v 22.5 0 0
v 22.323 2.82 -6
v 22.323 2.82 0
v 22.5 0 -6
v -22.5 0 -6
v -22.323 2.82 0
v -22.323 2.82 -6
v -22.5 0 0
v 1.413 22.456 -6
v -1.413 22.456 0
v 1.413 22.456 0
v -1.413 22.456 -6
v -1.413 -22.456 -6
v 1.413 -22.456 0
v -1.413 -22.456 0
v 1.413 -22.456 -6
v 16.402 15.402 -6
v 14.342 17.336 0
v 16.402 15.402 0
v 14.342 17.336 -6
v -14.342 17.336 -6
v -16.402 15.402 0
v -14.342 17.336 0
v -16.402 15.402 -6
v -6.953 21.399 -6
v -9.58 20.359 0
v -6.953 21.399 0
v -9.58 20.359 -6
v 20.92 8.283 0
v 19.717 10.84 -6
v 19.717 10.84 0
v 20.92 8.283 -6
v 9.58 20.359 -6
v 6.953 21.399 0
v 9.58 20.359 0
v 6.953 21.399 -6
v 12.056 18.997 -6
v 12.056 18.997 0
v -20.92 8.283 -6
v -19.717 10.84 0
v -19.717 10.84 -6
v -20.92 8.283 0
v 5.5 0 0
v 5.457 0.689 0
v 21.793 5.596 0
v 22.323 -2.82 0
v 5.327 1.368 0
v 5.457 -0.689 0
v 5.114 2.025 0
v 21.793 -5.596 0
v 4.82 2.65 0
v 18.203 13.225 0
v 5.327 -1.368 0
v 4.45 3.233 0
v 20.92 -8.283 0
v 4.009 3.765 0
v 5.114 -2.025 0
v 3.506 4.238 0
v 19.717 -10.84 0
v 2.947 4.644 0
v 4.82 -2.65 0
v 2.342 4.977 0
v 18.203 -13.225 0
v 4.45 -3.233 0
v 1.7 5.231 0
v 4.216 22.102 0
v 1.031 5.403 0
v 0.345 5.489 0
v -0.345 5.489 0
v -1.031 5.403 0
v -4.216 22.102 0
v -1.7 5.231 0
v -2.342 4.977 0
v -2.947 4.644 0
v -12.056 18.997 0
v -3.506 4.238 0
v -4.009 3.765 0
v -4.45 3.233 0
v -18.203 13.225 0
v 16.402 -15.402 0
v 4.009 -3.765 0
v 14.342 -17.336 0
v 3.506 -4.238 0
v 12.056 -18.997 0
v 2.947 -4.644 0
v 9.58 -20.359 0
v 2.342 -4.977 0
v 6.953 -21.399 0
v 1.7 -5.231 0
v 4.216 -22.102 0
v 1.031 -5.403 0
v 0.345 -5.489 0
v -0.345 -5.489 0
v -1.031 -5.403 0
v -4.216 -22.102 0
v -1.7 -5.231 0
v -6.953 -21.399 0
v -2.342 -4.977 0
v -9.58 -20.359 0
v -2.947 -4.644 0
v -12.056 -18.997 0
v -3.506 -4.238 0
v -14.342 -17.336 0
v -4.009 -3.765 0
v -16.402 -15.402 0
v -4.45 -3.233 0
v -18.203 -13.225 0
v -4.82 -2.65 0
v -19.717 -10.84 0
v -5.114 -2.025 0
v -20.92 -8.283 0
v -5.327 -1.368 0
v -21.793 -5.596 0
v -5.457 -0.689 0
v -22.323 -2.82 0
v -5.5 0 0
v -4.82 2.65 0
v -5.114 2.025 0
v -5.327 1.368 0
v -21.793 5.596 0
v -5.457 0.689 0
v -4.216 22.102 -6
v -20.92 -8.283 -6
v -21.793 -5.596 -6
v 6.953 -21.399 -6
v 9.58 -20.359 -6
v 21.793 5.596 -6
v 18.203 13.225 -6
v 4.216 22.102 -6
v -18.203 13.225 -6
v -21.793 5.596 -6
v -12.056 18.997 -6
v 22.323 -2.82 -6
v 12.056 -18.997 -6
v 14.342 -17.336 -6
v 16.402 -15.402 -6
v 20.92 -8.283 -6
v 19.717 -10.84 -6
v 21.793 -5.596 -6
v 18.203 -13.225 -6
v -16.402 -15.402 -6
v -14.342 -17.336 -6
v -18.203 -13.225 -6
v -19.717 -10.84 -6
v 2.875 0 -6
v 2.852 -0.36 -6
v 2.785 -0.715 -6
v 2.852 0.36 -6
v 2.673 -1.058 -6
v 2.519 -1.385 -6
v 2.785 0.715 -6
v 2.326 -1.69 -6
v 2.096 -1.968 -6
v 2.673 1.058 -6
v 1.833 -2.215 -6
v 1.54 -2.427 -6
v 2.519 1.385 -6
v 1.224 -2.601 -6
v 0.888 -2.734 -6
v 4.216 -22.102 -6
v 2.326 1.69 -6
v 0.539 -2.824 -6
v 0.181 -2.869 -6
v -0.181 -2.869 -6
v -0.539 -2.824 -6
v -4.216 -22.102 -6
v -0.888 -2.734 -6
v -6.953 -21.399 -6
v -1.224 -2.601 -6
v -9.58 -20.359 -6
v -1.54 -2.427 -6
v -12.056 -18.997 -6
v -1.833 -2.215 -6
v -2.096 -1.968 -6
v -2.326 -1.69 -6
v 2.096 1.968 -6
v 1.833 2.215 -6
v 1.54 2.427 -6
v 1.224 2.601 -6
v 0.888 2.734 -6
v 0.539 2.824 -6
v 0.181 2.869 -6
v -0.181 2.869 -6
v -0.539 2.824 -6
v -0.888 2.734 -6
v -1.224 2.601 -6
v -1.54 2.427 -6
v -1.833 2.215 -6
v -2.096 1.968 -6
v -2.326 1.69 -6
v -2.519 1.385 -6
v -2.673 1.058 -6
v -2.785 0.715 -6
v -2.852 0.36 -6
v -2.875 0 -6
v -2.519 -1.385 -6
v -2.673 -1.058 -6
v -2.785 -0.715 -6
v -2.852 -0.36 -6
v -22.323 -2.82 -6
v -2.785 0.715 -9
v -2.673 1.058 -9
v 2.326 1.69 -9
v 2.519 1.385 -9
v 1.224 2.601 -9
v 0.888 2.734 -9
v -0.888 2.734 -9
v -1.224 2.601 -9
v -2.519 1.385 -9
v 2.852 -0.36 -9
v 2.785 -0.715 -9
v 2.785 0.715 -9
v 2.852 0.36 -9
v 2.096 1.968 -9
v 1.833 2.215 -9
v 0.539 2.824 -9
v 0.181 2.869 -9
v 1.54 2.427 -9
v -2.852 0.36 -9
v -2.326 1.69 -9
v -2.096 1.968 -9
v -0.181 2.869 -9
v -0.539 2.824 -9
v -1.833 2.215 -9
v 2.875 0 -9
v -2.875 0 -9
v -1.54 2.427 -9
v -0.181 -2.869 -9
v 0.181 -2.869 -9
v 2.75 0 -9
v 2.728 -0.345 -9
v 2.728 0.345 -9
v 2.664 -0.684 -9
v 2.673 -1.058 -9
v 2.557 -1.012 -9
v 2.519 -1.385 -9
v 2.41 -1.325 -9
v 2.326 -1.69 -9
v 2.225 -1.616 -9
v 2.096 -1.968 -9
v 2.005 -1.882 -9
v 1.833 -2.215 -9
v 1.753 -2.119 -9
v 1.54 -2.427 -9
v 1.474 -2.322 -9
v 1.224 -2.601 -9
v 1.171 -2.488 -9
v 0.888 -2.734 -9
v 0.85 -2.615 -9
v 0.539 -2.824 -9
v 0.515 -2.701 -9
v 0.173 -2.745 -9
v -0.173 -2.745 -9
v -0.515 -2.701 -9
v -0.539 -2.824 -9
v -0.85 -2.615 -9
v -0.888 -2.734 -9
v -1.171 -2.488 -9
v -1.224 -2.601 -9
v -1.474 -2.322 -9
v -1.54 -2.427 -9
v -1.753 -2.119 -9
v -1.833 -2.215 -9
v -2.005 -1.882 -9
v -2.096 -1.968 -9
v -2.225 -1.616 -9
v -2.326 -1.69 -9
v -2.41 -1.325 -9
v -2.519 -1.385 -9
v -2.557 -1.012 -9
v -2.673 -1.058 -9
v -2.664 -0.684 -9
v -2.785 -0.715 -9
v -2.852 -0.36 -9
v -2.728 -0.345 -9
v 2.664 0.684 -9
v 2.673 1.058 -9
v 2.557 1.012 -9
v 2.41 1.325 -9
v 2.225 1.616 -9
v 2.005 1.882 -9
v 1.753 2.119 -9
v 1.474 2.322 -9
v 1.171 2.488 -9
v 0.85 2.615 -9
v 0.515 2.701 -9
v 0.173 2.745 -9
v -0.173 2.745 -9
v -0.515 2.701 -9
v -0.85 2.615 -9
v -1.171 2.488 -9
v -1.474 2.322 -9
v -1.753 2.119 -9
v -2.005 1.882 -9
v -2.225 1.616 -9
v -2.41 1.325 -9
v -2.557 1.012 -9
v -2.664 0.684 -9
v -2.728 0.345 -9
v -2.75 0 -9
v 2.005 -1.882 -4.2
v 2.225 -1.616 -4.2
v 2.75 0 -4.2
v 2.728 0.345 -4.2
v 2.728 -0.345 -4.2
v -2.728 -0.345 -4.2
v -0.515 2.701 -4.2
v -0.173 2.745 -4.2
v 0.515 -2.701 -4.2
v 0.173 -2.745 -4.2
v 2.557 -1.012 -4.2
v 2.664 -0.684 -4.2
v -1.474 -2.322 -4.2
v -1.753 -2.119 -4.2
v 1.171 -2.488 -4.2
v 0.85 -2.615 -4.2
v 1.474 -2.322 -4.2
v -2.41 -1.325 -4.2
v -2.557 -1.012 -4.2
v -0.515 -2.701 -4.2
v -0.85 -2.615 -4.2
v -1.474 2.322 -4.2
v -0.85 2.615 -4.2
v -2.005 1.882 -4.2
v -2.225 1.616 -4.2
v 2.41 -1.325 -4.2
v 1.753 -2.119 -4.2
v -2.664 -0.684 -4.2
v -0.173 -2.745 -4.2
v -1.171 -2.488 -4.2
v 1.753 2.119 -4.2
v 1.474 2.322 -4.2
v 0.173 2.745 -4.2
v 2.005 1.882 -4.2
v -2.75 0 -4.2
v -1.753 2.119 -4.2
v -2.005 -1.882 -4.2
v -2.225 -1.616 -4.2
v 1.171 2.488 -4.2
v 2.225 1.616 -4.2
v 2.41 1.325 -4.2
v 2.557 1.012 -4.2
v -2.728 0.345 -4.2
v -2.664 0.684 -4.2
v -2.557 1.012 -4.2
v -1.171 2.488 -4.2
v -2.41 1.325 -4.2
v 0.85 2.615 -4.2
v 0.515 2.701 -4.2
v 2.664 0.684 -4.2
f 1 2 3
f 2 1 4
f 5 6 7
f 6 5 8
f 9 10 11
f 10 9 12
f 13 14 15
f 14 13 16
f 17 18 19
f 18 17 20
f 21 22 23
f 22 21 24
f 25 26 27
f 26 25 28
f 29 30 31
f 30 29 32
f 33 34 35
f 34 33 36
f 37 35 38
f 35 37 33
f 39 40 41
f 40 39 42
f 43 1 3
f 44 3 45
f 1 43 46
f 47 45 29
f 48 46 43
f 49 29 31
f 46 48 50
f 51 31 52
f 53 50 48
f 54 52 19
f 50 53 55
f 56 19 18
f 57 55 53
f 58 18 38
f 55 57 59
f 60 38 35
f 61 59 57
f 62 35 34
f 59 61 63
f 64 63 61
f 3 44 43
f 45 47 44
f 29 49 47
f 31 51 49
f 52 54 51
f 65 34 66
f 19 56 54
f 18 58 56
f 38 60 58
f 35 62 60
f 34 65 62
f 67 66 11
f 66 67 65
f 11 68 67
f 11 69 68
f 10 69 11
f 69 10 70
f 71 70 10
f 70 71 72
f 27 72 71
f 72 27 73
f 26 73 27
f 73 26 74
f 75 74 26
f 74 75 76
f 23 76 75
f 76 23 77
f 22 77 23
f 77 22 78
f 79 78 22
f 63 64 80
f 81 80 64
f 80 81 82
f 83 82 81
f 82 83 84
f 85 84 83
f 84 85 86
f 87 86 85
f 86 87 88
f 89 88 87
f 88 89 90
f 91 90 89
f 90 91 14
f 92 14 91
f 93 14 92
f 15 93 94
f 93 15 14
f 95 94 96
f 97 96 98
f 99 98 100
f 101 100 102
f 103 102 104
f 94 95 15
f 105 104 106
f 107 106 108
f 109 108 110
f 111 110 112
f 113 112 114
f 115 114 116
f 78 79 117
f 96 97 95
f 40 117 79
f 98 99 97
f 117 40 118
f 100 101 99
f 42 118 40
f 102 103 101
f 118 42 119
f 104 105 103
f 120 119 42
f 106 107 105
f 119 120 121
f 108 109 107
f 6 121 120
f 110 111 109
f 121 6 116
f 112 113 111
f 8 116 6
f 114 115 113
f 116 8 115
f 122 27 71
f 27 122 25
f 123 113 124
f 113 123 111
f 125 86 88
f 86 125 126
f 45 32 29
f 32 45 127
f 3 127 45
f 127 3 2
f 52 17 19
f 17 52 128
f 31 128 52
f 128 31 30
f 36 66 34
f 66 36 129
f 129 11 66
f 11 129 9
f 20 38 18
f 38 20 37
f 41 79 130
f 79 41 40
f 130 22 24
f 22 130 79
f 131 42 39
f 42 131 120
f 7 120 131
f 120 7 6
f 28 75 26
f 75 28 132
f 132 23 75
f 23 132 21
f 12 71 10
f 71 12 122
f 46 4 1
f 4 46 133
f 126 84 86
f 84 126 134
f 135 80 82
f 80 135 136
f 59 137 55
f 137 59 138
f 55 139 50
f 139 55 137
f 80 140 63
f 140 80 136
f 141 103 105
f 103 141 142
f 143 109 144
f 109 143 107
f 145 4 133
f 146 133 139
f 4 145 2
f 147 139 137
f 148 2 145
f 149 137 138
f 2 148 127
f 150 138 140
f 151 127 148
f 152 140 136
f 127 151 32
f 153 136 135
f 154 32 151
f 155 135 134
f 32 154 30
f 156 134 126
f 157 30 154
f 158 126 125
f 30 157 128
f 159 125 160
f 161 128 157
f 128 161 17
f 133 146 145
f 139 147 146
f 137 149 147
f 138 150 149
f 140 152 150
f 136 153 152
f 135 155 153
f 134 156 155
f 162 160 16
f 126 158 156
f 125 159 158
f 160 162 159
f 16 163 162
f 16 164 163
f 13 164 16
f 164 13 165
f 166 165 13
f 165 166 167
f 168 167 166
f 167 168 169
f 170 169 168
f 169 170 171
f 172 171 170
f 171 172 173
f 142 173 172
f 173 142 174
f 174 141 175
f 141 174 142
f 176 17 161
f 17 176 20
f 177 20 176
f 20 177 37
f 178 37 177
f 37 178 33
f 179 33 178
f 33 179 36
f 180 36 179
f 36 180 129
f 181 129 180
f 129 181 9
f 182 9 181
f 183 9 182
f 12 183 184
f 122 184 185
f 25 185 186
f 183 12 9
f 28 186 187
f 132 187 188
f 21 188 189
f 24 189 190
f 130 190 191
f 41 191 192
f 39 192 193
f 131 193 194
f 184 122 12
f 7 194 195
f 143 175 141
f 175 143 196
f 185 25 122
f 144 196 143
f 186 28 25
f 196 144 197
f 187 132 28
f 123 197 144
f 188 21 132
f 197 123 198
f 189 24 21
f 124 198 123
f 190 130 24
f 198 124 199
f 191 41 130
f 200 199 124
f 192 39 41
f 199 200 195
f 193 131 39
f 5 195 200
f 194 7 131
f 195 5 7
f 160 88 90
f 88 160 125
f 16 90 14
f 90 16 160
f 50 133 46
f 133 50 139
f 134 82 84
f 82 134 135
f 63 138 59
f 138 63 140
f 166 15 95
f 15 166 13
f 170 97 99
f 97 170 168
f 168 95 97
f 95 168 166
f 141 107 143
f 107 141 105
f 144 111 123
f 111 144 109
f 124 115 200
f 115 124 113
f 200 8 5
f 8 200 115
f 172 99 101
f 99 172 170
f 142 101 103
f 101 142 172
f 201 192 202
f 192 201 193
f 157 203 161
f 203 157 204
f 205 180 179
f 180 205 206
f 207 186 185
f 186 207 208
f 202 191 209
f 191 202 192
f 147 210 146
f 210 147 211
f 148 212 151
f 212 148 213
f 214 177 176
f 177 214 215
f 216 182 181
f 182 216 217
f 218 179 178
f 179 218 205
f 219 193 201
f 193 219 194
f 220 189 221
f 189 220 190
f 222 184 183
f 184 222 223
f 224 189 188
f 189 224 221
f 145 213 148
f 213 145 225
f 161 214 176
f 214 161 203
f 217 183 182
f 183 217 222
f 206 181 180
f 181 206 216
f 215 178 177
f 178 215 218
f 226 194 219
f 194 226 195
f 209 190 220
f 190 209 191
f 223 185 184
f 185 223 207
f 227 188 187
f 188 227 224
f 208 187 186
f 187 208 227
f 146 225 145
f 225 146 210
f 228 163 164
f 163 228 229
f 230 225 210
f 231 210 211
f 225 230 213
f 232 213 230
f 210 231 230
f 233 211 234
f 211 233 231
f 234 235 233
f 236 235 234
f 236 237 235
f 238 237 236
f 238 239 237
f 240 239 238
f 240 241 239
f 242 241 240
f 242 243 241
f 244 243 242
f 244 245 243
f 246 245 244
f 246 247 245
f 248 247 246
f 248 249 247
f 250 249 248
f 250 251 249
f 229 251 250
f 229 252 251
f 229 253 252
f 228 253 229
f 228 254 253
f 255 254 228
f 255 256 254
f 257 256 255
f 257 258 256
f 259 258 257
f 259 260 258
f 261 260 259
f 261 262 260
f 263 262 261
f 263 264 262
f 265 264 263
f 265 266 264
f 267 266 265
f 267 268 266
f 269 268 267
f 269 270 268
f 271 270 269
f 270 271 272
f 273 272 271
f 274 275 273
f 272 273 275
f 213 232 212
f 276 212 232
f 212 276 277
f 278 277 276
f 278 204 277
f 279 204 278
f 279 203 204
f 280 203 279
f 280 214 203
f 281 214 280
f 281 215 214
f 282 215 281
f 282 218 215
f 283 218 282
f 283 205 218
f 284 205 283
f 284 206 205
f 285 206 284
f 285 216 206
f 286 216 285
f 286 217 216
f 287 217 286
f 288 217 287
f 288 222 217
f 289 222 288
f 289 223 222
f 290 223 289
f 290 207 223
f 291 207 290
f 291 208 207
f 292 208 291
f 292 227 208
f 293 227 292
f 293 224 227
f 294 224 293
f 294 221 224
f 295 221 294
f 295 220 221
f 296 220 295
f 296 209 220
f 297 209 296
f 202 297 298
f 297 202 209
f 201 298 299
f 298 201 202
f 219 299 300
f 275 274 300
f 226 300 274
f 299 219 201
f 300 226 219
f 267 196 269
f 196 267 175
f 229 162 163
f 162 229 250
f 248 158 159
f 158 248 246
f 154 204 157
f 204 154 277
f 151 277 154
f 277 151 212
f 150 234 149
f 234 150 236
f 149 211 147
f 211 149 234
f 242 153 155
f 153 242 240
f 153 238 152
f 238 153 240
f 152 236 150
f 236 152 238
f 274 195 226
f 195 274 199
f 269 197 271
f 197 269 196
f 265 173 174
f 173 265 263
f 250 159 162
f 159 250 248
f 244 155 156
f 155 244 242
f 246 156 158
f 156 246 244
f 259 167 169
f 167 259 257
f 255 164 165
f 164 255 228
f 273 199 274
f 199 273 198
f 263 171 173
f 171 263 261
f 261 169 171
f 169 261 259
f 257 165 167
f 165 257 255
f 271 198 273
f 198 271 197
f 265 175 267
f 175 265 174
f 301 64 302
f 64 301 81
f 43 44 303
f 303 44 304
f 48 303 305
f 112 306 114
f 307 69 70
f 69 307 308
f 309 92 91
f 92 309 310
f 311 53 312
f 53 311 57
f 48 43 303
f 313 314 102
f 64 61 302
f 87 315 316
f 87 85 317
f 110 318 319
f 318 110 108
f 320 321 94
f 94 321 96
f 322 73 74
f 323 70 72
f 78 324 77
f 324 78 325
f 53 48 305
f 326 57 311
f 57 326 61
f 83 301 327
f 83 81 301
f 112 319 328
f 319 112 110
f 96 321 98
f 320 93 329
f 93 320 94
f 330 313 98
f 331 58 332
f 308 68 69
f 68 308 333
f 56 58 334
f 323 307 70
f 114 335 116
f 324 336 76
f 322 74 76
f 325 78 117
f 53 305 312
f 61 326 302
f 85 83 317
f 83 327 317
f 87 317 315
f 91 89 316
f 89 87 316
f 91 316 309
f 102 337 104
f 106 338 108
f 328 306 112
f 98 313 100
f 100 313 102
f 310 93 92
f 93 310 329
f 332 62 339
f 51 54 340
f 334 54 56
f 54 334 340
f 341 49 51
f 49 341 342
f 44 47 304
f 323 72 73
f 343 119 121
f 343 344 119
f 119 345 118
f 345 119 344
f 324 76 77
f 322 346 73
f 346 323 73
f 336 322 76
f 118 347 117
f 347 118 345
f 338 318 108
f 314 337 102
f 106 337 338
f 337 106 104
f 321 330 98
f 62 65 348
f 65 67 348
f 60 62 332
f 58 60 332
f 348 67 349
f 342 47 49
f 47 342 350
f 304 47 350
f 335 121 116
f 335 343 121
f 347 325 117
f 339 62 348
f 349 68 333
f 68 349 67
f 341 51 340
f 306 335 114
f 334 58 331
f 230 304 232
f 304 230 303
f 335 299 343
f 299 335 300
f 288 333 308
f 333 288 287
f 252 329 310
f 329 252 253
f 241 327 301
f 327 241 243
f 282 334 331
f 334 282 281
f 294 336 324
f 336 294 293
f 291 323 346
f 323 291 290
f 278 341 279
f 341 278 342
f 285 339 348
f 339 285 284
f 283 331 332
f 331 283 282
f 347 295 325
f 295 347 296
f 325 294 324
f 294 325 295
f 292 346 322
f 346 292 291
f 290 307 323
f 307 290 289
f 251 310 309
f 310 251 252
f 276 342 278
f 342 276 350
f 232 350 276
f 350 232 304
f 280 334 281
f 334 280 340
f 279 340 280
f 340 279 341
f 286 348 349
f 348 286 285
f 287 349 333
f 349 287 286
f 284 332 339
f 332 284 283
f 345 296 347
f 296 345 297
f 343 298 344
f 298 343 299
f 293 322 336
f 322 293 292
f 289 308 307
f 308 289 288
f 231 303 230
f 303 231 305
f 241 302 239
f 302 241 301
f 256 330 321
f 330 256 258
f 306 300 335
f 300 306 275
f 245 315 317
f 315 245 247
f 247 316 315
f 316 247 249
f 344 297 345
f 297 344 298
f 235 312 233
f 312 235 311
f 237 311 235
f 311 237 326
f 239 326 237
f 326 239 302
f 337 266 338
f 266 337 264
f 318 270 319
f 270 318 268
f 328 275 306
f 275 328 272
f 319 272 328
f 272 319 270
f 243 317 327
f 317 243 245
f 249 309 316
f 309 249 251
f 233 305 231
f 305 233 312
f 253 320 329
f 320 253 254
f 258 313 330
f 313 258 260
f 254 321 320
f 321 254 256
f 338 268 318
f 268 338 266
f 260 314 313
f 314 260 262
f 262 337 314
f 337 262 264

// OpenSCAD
$fn = 50;


difference() {
	union() {
		translate(v = [0, 0, -6.0000000000]) {
			cylinder(h = 6, r = 22.5000000000);
		}
		translate(v = [0, 0, -9.0000000000]) {
			cylinder(h = 9, r = 2.8750000000);
		}
	}
	union() {
		translate(v = [0, 0, 0]) {
			rotate(a = [0, 0, 0]) {
				difference() {
					union() {
						translate(v = [0, 0, -9.0000000000]) {
							cylinder(h = 9, r = 2.2500000000);
						}
						translate(v = [0, 0, -4.2000000000]) {
							cylinder(h = 4.2000000000, r1 = 2.7500000000, r2 = 5.5000000000);
						}
						translate(v = [0, 0, -9.0000000000]) {
							cylinder(h = 9, r = 2.7500000000);
						}
						translate(v = [0, 0, -9.0000000000]) {
							cylinder(h = 9, r = 2.2500000000);
						}
					}
					union();
				}
			}
		}
	}
}
